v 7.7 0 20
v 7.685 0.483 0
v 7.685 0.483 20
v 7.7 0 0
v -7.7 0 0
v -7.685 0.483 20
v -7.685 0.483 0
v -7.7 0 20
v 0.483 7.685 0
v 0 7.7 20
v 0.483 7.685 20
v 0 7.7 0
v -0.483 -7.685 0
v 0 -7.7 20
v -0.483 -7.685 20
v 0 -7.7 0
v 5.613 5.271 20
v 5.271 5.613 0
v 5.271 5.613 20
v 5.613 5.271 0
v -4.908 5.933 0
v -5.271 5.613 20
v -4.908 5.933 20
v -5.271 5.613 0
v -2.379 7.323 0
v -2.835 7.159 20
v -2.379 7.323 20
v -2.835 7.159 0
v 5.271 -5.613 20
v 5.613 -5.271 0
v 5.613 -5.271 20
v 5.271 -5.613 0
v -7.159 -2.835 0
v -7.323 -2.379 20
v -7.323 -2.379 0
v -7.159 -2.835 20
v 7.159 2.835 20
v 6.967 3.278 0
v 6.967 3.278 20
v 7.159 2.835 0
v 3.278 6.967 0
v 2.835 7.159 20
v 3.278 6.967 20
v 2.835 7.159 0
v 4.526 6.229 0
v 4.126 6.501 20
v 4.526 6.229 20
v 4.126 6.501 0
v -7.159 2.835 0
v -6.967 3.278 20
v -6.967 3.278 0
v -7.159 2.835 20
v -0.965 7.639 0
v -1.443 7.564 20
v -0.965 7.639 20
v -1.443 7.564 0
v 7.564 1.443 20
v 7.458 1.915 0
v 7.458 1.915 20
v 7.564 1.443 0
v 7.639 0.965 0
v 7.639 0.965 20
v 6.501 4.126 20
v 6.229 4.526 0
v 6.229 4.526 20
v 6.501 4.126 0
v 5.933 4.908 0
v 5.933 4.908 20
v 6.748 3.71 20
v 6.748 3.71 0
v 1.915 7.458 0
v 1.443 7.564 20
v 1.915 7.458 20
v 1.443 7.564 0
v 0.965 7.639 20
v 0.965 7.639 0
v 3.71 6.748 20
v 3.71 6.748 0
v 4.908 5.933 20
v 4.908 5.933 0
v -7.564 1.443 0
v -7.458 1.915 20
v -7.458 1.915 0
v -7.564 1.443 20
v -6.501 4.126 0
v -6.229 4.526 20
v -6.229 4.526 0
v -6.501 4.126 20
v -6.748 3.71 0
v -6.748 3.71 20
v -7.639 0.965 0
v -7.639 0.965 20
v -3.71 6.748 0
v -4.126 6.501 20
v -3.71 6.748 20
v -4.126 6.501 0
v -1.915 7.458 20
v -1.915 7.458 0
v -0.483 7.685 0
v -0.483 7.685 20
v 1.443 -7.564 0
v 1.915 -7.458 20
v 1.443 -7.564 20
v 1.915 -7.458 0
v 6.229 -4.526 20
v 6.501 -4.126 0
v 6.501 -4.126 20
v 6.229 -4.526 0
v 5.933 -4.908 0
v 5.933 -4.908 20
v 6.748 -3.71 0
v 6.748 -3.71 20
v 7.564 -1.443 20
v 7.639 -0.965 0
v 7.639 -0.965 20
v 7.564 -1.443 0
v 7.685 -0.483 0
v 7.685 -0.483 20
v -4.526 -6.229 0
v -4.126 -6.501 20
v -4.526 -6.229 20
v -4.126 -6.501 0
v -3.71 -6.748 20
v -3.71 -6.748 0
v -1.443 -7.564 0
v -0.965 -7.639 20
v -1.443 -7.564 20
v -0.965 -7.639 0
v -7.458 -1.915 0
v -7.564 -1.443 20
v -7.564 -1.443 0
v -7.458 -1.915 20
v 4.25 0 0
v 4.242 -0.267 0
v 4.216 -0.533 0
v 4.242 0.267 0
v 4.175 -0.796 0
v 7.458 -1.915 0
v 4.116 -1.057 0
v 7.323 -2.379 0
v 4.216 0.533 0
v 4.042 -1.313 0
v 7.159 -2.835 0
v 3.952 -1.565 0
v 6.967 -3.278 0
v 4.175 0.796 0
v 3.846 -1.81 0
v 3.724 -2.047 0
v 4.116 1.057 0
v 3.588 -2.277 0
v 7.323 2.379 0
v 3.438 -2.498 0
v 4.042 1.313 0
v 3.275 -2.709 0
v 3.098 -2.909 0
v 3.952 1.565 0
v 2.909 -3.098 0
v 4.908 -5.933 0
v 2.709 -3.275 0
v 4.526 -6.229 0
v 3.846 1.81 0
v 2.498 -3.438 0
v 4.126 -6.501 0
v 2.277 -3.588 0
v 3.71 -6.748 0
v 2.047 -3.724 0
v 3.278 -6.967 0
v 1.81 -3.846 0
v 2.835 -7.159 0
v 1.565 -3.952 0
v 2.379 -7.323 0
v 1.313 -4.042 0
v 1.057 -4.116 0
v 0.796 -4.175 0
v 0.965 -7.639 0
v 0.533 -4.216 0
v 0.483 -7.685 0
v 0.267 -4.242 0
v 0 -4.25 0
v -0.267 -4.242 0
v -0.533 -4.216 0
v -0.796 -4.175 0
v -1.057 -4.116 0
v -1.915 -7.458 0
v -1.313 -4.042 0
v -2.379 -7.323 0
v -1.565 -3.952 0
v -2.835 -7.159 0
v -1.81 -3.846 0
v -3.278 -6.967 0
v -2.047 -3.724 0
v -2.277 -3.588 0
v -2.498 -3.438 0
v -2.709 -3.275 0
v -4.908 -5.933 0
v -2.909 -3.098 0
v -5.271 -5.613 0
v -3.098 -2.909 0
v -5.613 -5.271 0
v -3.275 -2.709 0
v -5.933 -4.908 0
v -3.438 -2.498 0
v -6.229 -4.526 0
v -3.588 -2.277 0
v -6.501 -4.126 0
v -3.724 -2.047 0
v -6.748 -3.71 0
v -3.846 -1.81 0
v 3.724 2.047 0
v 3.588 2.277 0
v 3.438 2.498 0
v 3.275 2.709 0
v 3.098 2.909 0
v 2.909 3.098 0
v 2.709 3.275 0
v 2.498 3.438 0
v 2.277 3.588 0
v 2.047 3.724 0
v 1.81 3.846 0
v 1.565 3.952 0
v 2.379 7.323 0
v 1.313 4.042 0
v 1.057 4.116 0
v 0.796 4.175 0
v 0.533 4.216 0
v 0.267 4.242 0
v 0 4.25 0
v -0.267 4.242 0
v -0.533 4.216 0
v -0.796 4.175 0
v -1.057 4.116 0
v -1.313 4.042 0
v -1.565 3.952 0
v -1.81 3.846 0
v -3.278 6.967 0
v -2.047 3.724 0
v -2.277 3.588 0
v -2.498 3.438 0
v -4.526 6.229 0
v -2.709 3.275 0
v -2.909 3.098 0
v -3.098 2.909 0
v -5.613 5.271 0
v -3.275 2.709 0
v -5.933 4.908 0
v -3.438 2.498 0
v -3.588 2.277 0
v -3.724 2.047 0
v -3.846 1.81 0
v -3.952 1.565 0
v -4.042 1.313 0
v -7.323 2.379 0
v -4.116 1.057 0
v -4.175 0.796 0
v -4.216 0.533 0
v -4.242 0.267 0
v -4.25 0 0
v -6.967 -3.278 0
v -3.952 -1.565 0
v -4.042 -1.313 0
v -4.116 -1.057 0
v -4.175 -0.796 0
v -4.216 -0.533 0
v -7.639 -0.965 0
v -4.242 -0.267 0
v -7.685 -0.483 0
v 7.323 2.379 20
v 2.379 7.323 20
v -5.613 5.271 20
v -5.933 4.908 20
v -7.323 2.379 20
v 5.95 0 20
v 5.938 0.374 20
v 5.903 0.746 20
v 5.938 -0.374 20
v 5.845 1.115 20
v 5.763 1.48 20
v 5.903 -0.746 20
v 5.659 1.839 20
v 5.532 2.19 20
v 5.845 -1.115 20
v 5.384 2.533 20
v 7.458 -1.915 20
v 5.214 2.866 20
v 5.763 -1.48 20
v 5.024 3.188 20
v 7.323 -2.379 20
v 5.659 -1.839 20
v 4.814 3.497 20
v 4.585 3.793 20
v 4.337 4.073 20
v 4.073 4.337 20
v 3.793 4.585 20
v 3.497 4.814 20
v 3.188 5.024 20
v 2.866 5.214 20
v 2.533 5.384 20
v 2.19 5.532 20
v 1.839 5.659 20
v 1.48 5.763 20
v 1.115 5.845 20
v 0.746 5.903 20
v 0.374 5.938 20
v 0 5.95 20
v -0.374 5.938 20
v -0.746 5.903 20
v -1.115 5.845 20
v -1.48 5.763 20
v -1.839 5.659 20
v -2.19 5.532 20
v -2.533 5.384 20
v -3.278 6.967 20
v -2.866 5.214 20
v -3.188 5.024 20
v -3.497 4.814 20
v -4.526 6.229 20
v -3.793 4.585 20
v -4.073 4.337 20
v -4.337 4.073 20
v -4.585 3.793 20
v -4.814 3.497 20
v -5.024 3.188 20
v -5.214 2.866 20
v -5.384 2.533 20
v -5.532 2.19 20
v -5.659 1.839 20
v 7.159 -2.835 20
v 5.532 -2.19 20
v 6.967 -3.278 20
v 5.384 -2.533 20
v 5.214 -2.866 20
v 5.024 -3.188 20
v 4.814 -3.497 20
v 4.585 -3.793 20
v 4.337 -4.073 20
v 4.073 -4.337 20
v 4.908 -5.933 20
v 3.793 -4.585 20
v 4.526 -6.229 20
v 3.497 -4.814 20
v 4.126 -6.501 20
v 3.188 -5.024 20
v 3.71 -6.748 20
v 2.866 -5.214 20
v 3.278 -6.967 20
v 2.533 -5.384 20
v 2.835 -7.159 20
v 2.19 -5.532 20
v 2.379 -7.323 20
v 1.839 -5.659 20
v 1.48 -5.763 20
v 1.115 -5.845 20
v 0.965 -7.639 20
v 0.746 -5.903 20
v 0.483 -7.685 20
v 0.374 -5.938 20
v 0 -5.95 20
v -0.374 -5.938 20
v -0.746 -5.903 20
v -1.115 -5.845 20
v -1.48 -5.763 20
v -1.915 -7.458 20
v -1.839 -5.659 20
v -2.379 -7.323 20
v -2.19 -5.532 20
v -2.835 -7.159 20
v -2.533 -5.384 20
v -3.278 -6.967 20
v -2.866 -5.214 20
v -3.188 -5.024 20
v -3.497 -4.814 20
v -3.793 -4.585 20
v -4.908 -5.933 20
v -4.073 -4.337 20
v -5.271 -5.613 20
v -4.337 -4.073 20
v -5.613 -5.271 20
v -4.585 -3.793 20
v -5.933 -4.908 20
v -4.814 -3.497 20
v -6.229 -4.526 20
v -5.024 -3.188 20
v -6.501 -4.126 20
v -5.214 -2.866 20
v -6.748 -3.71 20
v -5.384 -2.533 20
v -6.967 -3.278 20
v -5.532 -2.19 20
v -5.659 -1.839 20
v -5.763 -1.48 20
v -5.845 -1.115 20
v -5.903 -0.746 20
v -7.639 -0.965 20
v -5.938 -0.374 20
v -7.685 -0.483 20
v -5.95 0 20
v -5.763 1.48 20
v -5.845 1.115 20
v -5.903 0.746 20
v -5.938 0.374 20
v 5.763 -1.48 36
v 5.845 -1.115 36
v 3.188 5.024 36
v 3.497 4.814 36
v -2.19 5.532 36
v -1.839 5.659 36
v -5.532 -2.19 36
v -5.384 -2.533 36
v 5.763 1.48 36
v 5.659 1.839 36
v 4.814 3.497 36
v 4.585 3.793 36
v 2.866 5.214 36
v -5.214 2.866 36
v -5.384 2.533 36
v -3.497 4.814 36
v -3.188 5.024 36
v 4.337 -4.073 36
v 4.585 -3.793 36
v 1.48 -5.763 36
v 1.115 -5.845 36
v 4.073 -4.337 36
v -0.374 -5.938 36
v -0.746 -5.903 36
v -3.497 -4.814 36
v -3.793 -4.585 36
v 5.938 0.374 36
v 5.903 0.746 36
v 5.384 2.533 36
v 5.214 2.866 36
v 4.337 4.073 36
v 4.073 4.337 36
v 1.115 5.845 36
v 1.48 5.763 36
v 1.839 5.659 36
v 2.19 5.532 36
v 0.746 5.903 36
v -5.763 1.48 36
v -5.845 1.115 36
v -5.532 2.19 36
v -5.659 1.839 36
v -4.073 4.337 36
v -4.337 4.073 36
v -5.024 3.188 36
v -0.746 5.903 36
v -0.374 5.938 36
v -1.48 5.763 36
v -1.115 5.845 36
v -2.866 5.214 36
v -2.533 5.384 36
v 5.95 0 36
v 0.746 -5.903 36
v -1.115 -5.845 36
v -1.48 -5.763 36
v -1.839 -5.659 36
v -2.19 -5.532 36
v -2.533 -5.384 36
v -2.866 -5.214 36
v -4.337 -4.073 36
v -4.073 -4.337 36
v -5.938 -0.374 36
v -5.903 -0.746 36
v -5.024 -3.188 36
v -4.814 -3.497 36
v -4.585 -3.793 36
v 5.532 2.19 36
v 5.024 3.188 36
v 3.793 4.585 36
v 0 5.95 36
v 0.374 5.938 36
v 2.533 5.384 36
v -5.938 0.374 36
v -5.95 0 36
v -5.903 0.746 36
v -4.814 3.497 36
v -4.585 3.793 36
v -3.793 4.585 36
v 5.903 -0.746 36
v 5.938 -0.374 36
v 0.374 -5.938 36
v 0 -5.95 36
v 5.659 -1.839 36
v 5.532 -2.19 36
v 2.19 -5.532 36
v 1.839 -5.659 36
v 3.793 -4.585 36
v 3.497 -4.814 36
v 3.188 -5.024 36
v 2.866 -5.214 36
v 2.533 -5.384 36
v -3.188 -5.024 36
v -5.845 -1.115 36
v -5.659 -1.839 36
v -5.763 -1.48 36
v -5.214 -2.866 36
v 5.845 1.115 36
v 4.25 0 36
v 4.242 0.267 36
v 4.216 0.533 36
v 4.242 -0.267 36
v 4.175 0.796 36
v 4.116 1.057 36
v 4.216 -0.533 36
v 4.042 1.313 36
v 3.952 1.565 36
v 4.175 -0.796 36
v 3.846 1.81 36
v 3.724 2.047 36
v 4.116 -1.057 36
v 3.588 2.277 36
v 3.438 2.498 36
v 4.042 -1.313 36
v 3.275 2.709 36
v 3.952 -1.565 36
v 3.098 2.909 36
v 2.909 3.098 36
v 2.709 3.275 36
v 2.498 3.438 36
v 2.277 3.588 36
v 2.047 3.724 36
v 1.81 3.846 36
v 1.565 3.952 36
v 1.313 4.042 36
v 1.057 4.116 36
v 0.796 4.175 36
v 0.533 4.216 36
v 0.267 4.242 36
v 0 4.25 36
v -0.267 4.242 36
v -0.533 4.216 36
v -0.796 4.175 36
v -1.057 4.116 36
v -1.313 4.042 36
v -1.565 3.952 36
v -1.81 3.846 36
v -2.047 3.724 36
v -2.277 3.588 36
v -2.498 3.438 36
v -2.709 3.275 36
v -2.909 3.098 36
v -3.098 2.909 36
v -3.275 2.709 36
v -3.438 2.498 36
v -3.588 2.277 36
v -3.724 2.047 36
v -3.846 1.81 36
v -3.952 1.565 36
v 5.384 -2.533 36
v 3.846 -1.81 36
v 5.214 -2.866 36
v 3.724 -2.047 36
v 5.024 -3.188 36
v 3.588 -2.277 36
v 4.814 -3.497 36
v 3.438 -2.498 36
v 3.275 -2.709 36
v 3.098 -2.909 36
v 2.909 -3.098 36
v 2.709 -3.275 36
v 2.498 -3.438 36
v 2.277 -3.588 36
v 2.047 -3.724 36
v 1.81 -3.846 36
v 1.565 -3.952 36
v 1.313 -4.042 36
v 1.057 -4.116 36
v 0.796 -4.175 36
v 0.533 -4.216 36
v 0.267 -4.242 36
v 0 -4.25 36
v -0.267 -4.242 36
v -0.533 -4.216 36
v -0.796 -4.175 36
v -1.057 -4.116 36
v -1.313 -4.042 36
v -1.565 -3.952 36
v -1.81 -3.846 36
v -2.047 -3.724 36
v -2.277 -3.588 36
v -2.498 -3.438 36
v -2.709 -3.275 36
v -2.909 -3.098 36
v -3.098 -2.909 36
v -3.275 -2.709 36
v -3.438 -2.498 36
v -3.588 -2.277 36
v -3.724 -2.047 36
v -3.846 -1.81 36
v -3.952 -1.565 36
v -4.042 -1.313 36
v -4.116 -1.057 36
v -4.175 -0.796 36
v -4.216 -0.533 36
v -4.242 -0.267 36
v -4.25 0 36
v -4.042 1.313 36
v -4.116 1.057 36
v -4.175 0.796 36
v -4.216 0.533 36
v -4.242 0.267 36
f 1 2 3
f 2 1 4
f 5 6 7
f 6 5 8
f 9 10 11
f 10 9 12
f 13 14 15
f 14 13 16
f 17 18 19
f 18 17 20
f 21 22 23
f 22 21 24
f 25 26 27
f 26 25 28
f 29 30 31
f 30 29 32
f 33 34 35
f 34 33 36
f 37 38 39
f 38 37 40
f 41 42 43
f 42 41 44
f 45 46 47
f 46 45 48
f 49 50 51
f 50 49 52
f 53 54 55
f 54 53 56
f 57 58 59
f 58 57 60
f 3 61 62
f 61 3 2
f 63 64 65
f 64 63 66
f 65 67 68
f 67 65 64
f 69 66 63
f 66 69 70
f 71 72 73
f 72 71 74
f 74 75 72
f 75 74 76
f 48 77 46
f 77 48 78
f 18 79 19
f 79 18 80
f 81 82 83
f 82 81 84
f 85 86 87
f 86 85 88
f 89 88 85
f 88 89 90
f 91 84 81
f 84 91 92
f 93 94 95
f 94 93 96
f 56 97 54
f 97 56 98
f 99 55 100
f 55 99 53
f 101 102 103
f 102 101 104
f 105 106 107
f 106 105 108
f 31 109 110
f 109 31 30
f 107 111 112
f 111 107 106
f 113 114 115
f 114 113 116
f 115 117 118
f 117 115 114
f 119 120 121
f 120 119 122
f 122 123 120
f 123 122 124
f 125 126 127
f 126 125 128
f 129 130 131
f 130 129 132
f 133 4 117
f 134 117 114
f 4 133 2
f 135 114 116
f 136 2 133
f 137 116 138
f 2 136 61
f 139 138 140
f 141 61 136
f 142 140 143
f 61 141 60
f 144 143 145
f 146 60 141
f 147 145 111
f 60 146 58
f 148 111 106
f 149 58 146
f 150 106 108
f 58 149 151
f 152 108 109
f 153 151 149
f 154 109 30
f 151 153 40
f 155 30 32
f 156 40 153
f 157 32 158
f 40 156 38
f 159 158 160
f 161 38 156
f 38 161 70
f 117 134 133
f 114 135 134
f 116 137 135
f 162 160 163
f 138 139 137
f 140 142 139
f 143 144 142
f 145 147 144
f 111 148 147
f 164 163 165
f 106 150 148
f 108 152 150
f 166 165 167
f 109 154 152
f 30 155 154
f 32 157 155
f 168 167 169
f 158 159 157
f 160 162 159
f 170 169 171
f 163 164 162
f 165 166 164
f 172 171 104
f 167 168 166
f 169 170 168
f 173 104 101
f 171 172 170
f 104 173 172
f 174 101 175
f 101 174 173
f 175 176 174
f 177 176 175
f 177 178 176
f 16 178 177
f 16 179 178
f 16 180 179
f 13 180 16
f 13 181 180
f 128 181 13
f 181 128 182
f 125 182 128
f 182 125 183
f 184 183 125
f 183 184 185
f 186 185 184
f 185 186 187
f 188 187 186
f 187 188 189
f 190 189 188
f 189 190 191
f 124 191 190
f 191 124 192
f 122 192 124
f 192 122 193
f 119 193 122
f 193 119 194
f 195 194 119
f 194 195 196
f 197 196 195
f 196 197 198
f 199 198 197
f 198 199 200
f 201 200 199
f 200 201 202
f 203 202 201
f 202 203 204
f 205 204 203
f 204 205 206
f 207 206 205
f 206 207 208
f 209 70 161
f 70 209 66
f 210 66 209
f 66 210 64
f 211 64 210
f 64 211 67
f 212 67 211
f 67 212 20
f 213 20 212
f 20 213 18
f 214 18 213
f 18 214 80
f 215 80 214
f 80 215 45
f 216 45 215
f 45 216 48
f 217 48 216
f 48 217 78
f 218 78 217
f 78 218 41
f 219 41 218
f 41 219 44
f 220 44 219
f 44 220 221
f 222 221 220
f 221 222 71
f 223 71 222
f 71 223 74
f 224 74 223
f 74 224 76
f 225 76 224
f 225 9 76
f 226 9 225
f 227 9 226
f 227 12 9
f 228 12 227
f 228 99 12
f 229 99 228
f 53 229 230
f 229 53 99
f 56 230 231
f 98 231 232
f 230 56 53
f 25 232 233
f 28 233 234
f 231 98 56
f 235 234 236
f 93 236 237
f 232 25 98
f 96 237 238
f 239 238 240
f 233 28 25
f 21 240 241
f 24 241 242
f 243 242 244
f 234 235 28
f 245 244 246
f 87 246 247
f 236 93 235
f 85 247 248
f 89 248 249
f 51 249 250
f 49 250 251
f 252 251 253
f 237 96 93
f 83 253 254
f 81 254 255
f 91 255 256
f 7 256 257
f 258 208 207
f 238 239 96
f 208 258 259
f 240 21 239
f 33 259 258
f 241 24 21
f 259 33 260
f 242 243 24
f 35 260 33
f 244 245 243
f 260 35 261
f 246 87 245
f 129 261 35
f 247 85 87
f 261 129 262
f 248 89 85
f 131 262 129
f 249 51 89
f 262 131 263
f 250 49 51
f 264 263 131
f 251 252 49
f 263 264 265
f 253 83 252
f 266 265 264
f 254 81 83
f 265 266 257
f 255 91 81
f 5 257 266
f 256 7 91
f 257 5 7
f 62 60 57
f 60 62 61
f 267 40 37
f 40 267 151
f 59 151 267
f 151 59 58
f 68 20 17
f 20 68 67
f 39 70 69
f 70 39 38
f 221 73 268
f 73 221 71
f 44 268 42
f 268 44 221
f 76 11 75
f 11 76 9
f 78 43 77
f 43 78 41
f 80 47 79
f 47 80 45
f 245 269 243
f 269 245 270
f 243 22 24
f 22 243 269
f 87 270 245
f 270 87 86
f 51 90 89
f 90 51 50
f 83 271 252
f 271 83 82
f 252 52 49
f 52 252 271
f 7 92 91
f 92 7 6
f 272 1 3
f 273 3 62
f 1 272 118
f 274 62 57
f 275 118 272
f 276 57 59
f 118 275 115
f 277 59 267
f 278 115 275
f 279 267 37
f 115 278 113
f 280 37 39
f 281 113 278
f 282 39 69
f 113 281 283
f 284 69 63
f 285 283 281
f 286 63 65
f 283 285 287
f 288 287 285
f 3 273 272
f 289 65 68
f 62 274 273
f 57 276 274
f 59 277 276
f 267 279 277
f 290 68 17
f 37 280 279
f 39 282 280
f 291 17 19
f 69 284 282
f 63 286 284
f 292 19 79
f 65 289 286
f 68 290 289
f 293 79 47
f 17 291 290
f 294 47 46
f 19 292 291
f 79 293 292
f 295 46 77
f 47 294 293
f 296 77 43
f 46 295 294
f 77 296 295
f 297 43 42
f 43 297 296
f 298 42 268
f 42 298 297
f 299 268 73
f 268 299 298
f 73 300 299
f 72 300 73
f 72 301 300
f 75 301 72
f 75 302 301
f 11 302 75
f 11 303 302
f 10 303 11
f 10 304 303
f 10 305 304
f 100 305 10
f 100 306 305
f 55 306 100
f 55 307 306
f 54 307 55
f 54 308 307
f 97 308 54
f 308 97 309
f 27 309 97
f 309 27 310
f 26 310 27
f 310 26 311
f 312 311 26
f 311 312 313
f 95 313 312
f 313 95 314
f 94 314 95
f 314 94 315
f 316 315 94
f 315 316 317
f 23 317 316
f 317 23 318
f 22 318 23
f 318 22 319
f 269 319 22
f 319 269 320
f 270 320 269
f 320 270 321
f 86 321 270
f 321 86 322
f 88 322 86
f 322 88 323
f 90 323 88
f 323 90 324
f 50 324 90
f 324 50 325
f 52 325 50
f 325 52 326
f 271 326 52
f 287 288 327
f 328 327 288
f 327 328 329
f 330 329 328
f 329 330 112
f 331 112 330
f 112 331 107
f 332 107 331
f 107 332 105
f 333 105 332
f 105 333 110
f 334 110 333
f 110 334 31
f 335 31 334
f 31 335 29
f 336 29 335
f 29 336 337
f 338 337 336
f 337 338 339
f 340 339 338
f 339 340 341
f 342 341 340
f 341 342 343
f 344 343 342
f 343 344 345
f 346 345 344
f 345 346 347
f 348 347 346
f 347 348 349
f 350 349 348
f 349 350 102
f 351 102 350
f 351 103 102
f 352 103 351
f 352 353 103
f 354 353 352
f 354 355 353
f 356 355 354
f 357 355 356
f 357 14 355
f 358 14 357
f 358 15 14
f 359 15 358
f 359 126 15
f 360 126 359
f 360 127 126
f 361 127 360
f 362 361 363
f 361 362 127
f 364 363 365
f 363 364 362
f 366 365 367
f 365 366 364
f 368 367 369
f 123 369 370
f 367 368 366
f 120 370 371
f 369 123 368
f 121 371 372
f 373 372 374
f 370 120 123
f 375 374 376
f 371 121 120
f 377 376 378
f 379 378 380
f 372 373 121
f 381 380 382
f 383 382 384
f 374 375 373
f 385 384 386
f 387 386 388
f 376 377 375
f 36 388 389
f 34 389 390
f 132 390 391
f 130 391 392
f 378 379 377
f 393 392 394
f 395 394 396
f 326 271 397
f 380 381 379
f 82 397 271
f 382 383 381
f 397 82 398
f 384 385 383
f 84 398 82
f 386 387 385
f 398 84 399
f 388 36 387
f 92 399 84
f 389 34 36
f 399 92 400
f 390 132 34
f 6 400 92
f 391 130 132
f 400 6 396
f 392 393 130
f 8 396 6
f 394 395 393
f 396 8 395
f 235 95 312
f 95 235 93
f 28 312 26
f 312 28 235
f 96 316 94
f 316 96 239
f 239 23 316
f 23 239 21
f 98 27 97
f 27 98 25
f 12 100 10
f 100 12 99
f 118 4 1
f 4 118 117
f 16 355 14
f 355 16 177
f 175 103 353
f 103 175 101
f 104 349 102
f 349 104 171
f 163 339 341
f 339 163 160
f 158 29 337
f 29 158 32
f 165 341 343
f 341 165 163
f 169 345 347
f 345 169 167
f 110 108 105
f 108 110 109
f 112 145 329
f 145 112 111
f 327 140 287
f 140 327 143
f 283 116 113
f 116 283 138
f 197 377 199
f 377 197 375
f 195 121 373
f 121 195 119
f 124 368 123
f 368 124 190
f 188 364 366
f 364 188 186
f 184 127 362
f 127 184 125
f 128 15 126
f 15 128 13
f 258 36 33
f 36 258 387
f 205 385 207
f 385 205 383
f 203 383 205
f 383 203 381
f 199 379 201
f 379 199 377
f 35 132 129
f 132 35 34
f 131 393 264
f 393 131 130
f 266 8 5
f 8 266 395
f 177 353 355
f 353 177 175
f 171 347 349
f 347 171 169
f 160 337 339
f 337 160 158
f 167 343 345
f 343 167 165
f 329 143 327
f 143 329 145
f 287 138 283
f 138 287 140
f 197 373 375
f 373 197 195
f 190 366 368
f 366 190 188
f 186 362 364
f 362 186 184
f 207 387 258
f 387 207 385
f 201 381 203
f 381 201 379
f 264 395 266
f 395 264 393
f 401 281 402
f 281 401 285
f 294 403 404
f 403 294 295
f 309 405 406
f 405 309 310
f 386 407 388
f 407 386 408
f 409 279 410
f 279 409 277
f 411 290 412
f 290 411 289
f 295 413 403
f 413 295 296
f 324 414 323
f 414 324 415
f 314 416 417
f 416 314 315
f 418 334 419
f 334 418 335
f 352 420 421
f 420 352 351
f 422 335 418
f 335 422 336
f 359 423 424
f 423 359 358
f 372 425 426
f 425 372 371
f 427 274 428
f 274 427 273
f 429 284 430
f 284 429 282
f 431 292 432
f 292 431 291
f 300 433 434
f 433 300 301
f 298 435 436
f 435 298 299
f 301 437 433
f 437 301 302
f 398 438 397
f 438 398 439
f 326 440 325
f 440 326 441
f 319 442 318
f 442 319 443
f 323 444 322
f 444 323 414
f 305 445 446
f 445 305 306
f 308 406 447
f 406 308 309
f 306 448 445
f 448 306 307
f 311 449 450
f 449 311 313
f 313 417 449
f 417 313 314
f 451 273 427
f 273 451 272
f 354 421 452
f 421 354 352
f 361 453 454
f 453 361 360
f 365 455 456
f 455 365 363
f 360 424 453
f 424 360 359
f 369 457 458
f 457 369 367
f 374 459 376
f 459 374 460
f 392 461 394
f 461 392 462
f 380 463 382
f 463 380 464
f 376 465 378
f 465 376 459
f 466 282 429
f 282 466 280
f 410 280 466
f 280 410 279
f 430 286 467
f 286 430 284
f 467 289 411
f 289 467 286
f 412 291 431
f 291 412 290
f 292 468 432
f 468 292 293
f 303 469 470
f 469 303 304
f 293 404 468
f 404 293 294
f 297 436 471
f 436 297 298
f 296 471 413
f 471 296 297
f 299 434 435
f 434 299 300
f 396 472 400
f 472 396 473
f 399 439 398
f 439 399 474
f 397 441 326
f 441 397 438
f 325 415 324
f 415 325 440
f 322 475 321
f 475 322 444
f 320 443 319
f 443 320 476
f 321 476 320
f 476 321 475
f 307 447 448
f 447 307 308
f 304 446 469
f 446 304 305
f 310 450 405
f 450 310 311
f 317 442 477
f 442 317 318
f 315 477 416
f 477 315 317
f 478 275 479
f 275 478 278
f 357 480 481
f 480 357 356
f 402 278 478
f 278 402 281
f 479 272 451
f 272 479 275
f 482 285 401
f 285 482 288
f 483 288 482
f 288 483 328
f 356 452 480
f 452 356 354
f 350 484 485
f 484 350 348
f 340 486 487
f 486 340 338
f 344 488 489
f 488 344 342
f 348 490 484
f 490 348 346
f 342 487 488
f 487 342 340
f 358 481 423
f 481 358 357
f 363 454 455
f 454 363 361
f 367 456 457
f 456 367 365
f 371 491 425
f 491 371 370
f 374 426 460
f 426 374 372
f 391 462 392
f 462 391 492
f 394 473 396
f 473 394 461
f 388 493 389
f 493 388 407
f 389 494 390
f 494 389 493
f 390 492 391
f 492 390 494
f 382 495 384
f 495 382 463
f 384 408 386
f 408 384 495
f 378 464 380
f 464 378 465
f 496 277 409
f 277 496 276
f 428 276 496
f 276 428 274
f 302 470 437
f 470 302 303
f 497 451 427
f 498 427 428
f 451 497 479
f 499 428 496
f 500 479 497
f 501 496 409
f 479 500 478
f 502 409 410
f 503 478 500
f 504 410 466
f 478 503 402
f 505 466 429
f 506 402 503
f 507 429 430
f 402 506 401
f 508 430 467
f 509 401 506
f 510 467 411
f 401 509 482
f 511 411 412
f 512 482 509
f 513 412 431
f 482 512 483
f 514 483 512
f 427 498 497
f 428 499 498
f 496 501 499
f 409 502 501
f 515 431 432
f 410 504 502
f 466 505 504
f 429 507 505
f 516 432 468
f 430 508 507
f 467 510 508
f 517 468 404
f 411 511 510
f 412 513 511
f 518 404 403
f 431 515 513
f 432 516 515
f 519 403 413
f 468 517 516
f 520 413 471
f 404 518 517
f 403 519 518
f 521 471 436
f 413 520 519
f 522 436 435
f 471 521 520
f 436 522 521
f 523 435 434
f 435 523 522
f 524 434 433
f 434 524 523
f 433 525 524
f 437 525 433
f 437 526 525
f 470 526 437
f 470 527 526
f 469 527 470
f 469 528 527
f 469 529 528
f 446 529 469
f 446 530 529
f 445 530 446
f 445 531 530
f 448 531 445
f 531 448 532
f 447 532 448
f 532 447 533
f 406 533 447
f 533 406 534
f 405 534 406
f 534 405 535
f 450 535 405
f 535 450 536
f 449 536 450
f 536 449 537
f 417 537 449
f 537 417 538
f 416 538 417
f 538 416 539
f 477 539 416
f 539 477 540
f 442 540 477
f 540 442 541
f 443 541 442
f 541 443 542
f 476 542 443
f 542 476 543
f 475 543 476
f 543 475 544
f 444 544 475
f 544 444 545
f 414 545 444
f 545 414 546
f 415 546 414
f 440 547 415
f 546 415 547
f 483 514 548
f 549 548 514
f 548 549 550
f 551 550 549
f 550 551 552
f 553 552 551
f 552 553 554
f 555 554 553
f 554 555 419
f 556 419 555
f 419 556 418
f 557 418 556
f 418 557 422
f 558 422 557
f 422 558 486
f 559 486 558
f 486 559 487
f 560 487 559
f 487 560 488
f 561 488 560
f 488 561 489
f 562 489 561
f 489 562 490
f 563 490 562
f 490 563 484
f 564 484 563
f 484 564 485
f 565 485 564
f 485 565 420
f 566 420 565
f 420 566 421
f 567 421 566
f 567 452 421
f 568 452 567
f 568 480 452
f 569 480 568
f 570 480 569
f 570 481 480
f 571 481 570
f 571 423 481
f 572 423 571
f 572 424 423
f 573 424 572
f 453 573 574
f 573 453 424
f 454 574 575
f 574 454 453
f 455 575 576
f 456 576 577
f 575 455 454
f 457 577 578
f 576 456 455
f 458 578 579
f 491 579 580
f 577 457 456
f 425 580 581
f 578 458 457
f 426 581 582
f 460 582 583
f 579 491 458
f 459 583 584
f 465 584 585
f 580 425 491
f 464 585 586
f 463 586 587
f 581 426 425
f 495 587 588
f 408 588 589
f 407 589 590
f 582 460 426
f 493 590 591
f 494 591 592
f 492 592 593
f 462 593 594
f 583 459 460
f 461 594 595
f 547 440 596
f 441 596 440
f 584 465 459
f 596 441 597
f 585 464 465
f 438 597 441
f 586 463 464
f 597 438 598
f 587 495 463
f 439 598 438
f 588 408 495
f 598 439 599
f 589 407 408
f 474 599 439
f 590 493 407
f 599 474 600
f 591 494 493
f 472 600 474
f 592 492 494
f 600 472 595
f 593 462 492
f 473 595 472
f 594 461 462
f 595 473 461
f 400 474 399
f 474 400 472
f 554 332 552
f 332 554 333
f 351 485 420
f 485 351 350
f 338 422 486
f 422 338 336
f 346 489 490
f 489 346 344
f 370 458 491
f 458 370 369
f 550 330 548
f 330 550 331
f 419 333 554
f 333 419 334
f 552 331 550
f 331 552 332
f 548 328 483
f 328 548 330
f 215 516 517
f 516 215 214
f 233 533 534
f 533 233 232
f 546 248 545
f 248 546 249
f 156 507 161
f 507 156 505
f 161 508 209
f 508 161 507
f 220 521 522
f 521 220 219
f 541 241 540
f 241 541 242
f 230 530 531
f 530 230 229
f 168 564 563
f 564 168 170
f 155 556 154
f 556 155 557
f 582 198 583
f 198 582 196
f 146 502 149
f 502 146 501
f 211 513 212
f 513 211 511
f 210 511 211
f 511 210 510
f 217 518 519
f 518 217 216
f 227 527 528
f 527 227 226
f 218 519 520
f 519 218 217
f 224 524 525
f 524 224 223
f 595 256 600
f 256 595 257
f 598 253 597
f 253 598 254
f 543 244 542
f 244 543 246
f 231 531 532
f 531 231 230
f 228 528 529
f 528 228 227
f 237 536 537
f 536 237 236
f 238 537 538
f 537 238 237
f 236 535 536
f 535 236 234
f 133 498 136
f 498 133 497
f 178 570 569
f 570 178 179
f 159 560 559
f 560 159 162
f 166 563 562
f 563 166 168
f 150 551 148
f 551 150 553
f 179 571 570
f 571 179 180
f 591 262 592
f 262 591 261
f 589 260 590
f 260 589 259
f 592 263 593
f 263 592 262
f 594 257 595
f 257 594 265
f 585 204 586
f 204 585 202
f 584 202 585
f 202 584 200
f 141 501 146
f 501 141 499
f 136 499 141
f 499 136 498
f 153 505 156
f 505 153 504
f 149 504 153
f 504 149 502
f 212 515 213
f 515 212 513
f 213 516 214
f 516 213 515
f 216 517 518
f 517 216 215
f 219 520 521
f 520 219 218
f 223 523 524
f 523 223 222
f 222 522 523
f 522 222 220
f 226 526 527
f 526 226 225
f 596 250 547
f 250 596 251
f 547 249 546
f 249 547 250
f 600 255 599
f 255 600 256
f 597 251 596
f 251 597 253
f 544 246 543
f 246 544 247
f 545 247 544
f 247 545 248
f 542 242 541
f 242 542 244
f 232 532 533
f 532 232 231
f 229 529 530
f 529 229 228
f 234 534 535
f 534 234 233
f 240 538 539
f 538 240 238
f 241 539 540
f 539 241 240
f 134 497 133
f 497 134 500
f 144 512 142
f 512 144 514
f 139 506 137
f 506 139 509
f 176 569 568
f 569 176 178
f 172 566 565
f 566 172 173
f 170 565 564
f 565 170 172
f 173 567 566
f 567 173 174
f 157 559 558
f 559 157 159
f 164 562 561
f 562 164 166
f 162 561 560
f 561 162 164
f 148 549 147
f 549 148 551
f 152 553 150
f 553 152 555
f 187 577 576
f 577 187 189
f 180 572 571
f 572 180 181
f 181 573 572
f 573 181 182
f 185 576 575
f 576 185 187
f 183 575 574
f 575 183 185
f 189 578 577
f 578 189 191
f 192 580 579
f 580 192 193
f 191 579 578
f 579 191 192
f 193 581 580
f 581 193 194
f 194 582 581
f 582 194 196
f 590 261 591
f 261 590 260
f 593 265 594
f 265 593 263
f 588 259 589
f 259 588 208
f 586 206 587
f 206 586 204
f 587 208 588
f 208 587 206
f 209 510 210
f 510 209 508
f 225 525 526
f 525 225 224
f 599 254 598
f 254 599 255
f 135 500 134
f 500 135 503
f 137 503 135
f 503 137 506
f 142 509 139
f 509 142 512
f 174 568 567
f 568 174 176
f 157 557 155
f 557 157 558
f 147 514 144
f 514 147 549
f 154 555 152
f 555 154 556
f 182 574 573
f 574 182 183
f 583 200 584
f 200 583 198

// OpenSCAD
//  Pripravek pro testovani rozsahu kuloveho loziska EFSM-12

include <../../parameters.scad>
$fn = 100;

module 888_3014(){
    height =  20;
    neck = 16;

    difference(){
        union(){
            cylinder(d = 15.4, h = height);
            cylinder(d = 11.9, h = height+neck);
        }

        cylinder(d = M8_screw_diameter, h = 50);
    }
}


888_3014();
